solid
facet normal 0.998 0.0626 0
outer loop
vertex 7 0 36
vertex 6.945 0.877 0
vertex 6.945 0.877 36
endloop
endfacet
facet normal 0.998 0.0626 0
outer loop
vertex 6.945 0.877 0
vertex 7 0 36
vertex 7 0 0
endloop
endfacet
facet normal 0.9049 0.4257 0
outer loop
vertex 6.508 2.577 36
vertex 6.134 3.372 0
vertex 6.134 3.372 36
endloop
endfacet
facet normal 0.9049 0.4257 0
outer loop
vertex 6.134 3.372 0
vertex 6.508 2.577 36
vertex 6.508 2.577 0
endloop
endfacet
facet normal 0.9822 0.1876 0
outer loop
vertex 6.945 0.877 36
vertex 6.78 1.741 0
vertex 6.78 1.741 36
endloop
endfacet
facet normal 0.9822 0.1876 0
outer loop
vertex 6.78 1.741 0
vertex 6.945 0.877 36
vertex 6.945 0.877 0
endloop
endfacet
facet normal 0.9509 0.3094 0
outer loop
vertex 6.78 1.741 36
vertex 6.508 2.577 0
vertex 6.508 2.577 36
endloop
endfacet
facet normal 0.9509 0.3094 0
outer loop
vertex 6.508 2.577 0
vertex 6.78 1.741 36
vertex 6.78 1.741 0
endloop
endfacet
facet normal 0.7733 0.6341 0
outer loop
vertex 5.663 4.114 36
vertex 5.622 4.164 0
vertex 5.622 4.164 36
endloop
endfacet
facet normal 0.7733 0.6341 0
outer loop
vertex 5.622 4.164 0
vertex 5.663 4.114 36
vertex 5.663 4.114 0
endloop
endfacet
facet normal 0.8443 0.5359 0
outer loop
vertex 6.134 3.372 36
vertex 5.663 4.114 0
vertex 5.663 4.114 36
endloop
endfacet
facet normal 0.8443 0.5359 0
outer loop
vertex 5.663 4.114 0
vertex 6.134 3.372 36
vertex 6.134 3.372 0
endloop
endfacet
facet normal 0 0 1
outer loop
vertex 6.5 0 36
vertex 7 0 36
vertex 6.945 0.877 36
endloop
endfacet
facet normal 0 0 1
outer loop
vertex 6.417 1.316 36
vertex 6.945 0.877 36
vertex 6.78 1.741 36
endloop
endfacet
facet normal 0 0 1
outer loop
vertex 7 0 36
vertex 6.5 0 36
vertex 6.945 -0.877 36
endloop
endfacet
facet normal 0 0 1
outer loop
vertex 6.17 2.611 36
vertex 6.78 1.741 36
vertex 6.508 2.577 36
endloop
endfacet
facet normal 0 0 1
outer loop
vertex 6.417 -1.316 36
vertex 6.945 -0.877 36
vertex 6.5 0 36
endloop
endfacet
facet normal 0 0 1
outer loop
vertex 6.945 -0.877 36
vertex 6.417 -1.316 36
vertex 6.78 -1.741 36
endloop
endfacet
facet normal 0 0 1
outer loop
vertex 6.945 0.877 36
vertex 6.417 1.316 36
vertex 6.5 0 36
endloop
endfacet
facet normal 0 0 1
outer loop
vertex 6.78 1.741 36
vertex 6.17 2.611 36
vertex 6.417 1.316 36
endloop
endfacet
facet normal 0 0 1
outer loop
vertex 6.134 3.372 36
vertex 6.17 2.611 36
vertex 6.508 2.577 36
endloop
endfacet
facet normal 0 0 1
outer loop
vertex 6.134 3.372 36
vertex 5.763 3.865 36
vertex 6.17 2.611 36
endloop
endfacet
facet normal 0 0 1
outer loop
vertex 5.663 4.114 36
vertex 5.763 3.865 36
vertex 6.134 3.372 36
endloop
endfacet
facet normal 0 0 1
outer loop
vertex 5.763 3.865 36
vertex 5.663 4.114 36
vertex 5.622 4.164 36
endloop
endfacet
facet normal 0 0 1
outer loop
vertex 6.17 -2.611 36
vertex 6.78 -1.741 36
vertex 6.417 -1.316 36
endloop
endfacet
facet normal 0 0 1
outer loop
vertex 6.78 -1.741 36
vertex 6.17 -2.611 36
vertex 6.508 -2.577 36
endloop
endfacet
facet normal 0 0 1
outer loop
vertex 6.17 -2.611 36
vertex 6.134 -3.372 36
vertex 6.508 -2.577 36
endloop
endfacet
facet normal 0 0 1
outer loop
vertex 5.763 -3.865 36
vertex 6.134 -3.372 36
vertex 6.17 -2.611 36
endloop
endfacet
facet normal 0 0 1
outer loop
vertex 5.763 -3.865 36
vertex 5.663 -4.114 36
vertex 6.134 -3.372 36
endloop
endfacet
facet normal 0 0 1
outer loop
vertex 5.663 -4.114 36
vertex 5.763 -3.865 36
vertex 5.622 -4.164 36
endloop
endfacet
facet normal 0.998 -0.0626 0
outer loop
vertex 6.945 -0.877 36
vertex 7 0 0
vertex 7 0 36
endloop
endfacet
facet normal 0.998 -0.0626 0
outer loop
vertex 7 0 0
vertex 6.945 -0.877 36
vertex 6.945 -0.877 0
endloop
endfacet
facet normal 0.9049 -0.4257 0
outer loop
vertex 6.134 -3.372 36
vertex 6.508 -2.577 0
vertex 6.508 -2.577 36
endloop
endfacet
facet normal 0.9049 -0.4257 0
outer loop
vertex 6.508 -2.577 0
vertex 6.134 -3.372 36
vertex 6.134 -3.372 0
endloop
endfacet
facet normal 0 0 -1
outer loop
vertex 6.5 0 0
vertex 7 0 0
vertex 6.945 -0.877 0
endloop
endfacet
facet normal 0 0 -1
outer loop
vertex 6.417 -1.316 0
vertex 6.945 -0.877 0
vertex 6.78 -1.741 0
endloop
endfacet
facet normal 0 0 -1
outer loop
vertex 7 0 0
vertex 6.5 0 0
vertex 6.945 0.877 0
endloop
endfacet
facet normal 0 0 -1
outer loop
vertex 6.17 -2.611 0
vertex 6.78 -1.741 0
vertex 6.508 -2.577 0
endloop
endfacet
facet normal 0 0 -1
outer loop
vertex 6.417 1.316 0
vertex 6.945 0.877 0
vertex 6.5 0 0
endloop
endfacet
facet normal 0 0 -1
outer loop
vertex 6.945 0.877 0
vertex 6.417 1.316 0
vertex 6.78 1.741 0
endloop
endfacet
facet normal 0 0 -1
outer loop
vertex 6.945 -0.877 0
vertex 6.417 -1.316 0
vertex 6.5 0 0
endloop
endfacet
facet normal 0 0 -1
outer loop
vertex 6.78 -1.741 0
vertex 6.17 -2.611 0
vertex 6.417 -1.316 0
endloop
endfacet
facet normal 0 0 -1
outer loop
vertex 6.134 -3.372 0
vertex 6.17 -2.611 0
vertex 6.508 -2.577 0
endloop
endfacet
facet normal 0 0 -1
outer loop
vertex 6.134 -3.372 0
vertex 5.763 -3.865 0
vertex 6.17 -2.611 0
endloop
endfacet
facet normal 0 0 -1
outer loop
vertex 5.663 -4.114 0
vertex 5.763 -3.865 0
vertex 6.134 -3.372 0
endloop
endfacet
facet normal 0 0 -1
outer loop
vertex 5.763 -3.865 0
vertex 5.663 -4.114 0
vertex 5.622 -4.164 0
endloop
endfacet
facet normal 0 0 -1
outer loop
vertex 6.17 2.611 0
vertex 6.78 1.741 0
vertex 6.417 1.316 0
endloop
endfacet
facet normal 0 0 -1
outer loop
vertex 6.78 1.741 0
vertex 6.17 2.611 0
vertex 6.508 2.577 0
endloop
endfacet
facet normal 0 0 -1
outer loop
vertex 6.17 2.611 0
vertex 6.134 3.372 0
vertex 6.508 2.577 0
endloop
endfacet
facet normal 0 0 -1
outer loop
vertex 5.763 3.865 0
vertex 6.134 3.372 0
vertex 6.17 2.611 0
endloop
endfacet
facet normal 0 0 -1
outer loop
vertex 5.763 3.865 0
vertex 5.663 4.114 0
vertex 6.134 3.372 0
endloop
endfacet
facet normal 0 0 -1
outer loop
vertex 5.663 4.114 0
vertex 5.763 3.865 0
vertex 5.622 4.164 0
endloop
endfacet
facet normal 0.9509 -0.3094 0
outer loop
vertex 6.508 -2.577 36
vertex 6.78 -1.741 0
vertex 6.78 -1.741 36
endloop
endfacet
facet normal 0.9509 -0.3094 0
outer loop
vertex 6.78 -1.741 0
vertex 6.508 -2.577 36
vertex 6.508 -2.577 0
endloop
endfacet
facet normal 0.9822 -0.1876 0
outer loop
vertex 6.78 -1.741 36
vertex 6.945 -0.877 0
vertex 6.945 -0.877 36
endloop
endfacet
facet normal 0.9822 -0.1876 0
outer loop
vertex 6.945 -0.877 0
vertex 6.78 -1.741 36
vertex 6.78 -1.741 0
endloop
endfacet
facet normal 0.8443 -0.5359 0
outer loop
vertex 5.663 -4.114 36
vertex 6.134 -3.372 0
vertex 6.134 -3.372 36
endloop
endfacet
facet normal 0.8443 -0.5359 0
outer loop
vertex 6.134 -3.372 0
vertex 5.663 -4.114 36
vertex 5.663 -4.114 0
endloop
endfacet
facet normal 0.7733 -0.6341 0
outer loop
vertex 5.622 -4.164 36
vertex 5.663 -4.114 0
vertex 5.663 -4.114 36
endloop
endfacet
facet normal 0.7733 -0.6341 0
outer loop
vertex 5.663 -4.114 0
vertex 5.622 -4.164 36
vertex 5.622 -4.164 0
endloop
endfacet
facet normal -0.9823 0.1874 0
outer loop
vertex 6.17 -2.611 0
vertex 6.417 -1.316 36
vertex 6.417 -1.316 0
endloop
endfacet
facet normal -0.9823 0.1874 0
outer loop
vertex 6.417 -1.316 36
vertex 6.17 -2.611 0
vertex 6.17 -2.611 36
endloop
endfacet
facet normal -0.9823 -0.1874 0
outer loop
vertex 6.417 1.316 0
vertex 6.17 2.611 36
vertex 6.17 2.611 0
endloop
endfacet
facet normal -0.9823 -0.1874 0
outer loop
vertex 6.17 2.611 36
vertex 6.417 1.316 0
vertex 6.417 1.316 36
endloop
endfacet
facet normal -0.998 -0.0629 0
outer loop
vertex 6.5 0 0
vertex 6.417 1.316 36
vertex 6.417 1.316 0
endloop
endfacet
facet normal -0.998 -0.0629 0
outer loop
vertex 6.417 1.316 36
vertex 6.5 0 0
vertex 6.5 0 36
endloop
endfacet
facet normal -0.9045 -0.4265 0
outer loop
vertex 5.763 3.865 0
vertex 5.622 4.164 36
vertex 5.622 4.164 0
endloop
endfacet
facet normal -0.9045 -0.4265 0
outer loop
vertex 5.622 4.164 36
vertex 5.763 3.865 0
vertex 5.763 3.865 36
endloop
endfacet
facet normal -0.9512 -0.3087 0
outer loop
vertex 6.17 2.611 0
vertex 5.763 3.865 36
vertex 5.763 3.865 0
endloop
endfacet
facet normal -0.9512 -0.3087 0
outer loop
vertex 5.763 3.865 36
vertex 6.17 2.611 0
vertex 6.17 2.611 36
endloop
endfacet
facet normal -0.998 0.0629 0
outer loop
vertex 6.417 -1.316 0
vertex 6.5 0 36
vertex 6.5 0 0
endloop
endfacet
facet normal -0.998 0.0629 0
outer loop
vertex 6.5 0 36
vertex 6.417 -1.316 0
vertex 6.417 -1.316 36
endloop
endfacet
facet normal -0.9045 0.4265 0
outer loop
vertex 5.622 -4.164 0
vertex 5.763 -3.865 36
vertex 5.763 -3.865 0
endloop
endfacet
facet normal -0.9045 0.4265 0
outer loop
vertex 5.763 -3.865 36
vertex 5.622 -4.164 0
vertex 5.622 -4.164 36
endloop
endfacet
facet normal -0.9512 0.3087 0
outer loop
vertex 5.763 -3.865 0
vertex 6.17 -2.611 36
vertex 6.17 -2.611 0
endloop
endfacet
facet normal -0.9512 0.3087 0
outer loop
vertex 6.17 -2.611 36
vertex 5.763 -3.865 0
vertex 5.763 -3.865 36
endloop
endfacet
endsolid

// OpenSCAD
$fn = 50;


difference() {
	union() {
		cylinder(h = 36, r = 7.0000000000);
		translate(v = [-7.0000000000, 0, 0]) {
			cylinder(h = 36, r = 7.0000000000);
		}
	}
	union() {
		cylinder(h = 36, r = 3.2500000000);
		cylinder(h = 36, r = 1.8000000000);
		cylinder(h = 36, r = 1.8000000000);
		cylinder(h = 36, r = 1.8000000000);
		translate(v = [-11.5000000000, 0, 0]) {
			hull() {
				translate(v = [-3.7500000000, 0.0000000000, 0]) {
					cylinder(h = 36, r = 7.5000000000);
				}
				translate(v = [3.7500000000, 0.0000000000, 0]) {
					cylinder(h = 36, r = 7.5000000000);
				}
				translate(v = [-3.7500000000, -0.0000000000, 0]) {
					cylinder(h = 36, r = 7.5000000000);
				}
				translate(v = [3.7500000000, -0.0000000000, 0]) {
					cylinder(h = 36, r = 7.5000000000);
				}
			}
		}
		translate(v = [-4.0000000000, 0, 0.0000000000]) {
			cylinder(h = 36, r = 10.5000000000);
		}
	}
}
